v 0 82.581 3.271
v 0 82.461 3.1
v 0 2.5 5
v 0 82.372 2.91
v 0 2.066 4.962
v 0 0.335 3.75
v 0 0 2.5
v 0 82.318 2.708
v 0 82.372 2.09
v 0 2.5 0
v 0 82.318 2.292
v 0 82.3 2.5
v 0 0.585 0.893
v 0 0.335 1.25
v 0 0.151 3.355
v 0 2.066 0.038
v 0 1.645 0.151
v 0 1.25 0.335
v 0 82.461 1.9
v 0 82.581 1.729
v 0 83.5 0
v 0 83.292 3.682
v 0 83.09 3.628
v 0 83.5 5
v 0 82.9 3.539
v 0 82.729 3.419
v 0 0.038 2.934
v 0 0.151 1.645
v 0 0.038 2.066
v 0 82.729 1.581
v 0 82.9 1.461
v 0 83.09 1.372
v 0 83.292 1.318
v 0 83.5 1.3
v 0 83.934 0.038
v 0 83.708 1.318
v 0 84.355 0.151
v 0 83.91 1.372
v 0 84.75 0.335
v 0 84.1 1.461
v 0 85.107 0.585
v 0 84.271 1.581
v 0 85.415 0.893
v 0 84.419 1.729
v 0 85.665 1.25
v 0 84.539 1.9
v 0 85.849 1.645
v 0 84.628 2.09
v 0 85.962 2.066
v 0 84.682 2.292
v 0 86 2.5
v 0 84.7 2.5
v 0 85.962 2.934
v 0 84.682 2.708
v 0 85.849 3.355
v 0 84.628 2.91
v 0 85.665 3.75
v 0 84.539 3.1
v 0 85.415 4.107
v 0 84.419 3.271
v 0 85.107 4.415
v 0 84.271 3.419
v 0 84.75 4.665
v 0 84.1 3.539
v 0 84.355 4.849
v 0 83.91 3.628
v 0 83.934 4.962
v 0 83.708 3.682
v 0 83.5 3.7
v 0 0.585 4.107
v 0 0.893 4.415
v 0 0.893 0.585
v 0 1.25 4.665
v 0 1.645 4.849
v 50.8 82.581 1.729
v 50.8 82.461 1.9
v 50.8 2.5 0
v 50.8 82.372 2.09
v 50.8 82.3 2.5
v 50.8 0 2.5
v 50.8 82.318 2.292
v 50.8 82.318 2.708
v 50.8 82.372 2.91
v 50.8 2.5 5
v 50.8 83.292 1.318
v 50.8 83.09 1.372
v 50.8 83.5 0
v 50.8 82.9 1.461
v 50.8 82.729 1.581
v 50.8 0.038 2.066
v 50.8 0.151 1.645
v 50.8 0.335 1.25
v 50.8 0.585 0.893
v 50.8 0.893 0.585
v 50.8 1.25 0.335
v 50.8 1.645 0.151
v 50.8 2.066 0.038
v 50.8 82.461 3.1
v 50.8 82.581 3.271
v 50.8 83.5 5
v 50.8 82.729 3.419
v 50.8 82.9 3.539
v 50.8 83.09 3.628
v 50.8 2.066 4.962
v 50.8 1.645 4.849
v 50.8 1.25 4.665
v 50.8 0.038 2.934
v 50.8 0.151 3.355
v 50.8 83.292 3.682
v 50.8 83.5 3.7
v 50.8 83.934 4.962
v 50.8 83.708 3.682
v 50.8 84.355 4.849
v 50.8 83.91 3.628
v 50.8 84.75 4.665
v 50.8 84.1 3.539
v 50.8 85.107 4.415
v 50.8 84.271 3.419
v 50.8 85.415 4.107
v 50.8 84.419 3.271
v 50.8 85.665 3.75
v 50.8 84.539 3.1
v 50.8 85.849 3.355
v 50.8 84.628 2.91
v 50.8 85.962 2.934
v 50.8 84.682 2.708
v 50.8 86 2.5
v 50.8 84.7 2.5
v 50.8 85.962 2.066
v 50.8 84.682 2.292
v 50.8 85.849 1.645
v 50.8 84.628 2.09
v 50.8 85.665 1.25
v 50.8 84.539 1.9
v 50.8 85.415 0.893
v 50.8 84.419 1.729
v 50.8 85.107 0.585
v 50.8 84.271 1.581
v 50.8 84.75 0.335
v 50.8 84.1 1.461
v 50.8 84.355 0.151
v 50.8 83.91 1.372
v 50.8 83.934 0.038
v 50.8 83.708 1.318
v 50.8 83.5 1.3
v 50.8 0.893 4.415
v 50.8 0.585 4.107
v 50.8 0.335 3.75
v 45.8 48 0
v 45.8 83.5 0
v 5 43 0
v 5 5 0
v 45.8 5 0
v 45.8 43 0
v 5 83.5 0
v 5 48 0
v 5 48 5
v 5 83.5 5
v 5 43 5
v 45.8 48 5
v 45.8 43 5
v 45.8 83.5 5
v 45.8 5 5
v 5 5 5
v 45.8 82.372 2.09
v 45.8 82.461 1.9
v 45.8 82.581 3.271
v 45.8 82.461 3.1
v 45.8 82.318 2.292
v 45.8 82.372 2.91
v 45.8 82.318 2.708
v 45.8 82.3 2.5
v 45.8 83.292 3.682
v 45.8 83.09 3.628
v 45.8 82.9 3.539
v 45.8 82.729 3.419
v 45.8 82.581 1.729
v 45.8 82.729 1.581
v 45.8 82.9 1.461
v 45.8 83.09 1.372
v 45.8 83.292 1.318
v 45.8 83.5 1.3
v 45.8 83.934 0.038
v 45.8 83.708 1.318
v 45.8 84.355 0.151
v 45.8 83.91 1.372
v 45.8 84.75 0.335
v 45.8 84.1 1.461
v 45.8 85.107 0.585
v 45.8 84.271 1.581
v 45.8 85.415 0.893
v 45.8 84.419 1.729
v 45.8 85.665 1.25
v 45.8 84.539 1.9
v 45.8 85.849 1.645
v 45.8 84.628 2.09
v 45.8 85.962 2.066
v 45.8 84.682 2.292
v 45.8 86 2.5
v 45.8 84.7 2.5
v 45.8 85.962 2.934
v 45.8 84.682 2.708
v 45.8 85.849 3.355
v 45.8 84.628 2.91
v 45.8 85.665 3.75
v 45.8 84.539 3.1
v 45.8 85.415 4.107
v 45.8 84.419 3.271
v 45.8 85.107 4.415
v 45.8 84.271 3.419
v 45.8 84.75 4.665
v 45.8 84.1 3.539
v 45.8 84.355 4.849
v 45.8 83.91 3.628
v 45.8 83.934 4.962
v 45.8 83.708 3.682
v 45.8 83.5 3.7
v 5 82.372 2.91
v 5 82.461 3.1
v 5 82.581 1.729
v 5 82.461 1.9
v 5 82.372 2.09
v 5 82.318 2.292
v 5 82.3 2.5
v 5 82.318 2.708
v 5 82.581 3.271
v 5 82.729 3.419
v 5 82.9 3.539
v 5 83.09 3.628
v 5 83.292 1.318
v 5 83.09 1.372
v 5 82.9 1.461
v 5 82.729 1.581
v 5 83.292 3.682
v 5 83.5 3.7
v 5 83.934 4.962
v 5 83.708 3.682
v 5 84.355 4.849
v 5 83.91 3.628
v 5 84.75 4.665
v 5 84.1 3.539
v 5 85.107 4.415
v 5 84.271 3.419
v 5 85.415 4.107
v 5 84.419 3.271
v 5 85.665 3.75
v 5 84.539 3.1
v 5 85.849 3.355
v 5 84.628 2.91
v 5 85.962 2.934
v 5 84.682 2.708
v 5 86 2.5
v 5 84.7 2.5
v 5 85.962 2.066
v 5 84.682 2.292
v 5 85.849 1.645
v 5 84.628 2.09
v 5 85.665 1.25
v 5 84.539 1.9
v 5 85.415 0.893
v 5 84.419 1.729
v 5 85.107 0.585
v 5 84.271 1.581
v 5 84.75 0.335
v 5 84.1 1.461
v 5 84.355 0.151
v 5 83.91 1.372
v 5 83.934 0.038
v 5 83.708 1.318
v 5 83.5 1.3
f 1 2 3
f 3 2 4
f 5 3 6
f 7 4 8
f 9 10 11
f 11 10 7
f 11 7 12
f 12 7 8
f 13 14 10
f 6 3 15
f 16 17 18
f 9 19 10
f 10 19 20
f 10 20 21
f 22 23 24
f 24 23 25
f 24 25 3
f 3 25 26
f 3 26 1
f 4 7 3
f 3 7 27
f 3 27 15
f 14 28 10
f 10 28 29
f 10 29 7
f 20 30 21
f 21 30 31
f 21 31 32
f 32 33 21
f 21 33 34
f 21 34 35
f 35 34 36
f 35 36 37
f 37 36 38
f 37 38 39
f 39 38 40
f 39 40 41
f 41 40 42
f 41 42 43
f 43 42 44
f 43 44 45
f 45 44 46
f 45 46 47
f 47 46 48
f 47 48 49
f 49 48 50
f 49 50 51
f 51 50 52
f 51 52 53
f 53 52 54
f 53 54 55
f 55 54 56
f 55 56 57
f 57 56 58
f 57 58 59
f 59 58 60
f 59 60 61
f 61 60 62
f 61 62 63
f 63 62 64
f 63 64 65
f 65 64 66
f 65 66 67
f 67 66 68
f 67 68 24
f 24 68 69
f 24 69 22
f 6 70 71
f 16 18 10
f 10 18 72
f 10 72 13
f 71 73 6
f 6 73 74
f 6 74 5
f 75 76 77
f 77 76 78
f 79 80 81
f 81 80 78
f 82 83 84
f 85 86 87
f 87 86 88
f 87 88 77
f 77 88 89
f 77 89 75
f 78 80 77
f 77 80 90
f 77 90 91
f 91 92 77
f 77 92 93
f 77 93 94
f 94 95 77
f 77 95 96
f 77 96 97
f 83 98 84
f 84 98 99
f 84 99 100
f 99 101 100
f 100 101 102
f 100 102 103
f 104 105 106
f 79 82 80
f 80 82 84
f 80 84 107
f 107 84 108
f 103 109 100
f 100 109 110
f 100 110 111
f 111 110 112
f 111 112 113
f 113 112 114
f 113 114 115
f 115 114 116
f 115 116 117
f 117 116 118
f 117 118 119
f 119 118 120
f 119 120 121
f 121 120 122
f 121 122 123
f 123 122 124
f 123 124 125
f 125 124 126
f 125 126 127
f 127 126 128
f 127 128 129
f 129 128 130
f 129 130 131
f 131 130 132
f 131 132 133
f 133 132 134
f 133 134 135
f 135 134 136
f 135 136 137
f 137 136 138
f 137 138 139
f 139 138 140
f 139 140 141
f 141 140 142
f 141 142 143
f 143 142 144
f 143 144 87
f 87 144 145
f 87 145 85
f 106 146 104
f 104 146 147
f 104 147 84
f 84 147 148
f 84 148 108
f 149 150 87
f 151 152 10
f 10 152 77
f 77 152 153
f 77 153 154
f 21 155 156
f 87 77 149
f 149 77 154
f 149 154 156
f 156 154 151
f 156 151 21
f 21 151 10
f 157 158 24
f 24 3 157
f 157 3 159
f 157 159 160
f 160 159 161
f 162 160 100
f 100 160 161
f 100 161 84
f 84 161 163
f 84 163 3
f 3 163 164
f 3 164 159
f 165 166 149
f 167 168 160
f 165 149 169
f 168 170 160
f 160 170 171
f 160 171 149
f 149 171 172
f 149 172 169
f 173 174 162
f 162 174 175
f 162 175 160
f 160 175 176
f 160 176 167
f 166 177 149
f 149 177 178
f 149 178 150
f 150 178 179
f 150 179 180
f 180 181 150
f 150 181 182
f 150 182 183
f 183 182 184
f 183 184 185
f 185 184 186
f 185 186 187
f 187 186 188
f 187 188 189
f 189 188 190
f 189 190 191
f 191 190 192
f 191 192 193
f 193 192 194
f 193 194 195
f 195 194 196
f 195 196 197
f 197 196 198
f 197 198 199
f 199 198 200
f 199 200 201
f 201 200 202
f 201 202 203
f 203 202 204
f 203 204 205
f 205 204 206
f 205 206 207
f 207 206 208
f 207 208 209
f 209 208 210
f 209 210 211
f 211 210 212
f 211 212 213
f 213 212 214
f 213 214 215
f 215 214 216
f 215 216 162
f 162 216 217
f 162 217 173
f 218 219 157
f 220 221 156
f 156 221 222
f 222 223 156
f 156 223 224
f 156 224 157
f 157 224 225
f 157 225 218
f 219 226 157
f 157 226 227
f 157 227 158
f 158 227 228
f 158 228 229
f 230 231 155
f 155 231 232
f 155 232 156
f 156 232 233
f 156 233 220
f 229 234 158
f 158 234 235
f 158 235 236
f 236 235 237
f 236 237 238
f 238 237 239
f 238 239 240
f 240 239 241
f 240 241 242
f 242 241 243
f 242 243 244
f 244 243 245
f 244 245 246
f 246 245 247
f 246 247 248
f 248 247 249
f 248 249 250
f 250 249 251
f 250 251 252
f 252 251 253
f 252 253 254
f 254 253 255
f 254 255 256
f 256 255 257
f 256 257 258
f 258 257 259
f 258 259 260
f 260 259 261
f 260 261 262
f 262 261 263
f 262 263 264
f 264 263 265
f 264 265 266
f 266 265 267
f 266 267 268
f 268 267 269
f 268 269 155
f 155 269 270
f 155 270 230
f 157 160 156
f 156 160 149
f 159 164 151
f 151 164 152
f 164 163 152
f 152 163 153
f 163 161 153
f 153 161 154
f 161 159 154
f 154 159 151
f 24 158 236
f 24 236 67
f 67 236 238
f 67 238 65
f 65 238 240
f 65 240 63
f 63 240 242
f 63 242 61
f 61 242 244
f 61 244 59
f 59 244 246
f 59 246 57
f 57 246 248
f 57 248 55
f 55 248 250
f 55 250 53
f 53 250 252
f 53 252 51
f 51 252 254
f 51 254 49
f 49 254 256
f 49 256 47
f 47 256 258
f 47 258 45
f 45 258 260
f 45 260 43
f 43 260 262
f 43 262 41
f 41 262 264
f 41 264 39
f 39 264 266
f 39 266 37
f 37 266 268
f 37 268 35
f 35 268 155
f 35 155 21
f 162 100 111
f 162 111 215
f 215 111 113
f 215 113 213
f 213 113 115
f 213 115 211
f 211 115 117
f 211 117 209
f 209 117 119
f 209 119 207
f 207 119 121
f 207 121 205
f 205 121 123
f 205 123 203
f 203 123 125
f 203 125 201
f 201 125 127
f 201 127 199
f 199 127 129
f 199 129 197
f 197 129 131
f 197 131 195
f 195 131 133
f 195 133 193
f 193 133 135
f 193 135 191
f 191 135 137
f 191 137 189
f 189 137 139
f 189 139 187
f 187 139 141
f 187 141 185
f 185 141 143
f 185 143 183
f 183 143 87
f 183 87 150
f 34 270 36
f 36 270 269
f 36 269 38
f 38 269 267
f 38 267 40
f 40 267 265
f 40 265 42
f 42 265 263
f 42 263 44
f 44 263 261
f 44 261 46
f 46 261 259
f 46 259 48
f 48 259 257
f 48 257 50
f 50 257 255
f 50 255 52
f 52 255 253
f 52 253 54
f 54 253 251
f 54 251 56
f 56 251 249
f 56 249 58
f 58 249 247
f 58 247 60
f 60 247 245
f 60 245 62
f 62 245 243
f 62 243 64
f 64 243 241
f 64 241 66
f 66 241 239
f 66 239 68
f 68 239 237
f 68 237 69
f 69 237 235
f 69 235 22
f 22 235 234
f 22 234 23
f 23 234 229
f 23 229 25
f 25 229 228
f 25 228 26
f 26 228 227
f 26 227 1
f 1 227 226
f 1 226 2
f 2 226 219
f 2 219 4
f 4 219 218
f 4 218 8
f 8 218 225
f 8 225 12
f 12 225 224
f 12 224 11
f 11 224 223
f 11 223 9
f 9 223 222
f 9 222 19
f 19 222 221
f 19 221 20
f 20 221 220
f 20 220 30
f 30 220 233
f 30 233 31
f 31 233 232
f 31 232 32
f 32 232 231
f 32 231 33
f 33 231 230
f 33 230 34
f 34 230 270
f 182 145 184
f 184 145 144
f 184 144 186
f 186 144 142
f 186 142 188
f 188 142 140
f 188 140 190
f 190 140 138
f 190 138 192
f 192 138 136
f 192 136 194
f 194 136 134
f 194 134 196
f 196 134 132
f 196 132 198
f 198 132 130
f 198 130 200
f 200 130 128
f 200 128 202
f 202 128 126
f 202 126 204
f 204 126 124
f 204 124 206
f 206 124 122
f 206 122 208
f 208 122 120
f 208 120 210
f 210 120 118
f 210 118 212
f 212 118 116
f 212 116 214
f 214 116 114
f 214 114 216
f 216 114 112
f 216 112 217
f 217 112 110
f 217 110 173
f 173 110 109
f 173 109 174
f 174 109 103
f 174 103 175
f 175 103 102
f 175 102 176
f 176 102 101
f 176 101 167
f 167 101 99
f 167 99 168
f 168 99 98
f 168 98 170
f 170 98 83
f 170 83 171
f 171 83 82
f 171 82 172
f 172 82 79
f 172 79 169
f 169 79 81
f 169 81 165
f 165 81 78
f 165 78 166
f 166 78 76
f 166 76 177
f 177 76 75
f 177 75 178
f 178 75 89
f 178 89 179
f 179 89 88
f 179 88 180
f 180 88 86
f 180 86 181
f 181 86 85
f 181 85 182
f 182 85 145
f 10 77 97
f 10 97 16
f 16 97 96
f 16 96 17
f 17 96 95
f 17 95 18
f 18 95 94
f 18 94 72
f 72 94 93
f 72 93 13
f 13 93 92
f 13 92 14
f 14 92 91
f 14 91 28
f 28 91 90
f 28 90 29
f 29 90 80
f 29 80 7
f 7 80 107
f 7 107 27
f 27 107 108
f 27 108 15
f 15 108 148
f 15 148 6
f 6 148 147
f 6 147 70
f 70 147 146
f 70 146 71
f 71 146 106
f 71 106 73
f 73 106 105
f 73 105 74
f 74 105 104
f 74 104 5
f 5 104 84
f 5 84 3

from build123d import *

# Parameters (mm, degrees)
SKICA1_W                 = 40.8
SKICA1_H                 = 38
P_IDAT_VYSUNUT_M1_DEPTH  = 5
SKICA2_R                 = 1.2
ODEBRAT_VYSUNUT_M1_DEPTH = 51.8
ODEBRAT_VYSUNUT_M2_DEPTH = 51.8


with BuildPart() as part:
    # Skica1 → Přidat vysunutím1 (new body)
    with BuildSketch(Plane.XY):
        Polygon((0, 86), (0, 0), (50.8, 0), (50.8, 86), (45.8, 86), (45.8, 48), (5, 48), (5, 86), align=None)
        with Locations((25.4, 24)):
            Rectangle(SKICA1_W, SKICA1_H, mode=Mode.SUBTRACT)
    extrude(amount=P_IDAT_VYSUNUT_M1_DEPTH)

    # Skica2 → Odebrat vysunutím1 (cut, through all)
    with BuildSketch(Plane(origin=(50.8, 0, 0), x_dir=(0, 0, -1), z_dir=(1, 0, 0))):
        with BuildLine():
            Line((-5, 86), (-5, 83.5))
            ThreePointArc((-5, 83.5), (-4.267766969, 85.267766937), (-2.500000046, 86))
            Line((-2.500000046, 86), (-5, 86))
        make_face()
        with BuildLine():
            Line((0, 86), (-2.500000046, 86))
            ThreePointArc((-2.500000046, 86), (-0.732233063, 85.267766969), (0, 83.5))
            Line((0, 83.5), (0, 86))
        make_face()
        with Locations((-2.5, 83.5)):
            Circle(SKICA2_R)
    extrude(amount=-ODEBRAT_VYSUNUT_M1_DEPTH, mode=Mode.SUBTRACT)

    # Skica3 → Odebrat vysunutím2 (cut, through all)
    with BuildSketch(Plane(origin=(50.8, 0, 0), x_dir=(0, 0, -1), z_dir=(1, 0, 0))):
        with BuildLine():
            ThreePointArc((-2.5, 0), (-4.267766953, 0.732233047), (-5, 2.5))
            Line((-5, 2.5), (-5, 0))
            Line((-5, 0), (-2.5, 0))
        make_face()
        with BuildLine():
            ThreePointArc((0, 2.5), (-0.732233047, 0.732233047), (-2.5, 0))
            Line((-2.5, 0), (0, 0))
            Line((0, 0), (0, 2.5))
        make_face()
    extrude(amount=-ODEBRAT_VYSUNUT_M2_DEPTH, mode=Mode.SUBTRACT)


solid = part.part
